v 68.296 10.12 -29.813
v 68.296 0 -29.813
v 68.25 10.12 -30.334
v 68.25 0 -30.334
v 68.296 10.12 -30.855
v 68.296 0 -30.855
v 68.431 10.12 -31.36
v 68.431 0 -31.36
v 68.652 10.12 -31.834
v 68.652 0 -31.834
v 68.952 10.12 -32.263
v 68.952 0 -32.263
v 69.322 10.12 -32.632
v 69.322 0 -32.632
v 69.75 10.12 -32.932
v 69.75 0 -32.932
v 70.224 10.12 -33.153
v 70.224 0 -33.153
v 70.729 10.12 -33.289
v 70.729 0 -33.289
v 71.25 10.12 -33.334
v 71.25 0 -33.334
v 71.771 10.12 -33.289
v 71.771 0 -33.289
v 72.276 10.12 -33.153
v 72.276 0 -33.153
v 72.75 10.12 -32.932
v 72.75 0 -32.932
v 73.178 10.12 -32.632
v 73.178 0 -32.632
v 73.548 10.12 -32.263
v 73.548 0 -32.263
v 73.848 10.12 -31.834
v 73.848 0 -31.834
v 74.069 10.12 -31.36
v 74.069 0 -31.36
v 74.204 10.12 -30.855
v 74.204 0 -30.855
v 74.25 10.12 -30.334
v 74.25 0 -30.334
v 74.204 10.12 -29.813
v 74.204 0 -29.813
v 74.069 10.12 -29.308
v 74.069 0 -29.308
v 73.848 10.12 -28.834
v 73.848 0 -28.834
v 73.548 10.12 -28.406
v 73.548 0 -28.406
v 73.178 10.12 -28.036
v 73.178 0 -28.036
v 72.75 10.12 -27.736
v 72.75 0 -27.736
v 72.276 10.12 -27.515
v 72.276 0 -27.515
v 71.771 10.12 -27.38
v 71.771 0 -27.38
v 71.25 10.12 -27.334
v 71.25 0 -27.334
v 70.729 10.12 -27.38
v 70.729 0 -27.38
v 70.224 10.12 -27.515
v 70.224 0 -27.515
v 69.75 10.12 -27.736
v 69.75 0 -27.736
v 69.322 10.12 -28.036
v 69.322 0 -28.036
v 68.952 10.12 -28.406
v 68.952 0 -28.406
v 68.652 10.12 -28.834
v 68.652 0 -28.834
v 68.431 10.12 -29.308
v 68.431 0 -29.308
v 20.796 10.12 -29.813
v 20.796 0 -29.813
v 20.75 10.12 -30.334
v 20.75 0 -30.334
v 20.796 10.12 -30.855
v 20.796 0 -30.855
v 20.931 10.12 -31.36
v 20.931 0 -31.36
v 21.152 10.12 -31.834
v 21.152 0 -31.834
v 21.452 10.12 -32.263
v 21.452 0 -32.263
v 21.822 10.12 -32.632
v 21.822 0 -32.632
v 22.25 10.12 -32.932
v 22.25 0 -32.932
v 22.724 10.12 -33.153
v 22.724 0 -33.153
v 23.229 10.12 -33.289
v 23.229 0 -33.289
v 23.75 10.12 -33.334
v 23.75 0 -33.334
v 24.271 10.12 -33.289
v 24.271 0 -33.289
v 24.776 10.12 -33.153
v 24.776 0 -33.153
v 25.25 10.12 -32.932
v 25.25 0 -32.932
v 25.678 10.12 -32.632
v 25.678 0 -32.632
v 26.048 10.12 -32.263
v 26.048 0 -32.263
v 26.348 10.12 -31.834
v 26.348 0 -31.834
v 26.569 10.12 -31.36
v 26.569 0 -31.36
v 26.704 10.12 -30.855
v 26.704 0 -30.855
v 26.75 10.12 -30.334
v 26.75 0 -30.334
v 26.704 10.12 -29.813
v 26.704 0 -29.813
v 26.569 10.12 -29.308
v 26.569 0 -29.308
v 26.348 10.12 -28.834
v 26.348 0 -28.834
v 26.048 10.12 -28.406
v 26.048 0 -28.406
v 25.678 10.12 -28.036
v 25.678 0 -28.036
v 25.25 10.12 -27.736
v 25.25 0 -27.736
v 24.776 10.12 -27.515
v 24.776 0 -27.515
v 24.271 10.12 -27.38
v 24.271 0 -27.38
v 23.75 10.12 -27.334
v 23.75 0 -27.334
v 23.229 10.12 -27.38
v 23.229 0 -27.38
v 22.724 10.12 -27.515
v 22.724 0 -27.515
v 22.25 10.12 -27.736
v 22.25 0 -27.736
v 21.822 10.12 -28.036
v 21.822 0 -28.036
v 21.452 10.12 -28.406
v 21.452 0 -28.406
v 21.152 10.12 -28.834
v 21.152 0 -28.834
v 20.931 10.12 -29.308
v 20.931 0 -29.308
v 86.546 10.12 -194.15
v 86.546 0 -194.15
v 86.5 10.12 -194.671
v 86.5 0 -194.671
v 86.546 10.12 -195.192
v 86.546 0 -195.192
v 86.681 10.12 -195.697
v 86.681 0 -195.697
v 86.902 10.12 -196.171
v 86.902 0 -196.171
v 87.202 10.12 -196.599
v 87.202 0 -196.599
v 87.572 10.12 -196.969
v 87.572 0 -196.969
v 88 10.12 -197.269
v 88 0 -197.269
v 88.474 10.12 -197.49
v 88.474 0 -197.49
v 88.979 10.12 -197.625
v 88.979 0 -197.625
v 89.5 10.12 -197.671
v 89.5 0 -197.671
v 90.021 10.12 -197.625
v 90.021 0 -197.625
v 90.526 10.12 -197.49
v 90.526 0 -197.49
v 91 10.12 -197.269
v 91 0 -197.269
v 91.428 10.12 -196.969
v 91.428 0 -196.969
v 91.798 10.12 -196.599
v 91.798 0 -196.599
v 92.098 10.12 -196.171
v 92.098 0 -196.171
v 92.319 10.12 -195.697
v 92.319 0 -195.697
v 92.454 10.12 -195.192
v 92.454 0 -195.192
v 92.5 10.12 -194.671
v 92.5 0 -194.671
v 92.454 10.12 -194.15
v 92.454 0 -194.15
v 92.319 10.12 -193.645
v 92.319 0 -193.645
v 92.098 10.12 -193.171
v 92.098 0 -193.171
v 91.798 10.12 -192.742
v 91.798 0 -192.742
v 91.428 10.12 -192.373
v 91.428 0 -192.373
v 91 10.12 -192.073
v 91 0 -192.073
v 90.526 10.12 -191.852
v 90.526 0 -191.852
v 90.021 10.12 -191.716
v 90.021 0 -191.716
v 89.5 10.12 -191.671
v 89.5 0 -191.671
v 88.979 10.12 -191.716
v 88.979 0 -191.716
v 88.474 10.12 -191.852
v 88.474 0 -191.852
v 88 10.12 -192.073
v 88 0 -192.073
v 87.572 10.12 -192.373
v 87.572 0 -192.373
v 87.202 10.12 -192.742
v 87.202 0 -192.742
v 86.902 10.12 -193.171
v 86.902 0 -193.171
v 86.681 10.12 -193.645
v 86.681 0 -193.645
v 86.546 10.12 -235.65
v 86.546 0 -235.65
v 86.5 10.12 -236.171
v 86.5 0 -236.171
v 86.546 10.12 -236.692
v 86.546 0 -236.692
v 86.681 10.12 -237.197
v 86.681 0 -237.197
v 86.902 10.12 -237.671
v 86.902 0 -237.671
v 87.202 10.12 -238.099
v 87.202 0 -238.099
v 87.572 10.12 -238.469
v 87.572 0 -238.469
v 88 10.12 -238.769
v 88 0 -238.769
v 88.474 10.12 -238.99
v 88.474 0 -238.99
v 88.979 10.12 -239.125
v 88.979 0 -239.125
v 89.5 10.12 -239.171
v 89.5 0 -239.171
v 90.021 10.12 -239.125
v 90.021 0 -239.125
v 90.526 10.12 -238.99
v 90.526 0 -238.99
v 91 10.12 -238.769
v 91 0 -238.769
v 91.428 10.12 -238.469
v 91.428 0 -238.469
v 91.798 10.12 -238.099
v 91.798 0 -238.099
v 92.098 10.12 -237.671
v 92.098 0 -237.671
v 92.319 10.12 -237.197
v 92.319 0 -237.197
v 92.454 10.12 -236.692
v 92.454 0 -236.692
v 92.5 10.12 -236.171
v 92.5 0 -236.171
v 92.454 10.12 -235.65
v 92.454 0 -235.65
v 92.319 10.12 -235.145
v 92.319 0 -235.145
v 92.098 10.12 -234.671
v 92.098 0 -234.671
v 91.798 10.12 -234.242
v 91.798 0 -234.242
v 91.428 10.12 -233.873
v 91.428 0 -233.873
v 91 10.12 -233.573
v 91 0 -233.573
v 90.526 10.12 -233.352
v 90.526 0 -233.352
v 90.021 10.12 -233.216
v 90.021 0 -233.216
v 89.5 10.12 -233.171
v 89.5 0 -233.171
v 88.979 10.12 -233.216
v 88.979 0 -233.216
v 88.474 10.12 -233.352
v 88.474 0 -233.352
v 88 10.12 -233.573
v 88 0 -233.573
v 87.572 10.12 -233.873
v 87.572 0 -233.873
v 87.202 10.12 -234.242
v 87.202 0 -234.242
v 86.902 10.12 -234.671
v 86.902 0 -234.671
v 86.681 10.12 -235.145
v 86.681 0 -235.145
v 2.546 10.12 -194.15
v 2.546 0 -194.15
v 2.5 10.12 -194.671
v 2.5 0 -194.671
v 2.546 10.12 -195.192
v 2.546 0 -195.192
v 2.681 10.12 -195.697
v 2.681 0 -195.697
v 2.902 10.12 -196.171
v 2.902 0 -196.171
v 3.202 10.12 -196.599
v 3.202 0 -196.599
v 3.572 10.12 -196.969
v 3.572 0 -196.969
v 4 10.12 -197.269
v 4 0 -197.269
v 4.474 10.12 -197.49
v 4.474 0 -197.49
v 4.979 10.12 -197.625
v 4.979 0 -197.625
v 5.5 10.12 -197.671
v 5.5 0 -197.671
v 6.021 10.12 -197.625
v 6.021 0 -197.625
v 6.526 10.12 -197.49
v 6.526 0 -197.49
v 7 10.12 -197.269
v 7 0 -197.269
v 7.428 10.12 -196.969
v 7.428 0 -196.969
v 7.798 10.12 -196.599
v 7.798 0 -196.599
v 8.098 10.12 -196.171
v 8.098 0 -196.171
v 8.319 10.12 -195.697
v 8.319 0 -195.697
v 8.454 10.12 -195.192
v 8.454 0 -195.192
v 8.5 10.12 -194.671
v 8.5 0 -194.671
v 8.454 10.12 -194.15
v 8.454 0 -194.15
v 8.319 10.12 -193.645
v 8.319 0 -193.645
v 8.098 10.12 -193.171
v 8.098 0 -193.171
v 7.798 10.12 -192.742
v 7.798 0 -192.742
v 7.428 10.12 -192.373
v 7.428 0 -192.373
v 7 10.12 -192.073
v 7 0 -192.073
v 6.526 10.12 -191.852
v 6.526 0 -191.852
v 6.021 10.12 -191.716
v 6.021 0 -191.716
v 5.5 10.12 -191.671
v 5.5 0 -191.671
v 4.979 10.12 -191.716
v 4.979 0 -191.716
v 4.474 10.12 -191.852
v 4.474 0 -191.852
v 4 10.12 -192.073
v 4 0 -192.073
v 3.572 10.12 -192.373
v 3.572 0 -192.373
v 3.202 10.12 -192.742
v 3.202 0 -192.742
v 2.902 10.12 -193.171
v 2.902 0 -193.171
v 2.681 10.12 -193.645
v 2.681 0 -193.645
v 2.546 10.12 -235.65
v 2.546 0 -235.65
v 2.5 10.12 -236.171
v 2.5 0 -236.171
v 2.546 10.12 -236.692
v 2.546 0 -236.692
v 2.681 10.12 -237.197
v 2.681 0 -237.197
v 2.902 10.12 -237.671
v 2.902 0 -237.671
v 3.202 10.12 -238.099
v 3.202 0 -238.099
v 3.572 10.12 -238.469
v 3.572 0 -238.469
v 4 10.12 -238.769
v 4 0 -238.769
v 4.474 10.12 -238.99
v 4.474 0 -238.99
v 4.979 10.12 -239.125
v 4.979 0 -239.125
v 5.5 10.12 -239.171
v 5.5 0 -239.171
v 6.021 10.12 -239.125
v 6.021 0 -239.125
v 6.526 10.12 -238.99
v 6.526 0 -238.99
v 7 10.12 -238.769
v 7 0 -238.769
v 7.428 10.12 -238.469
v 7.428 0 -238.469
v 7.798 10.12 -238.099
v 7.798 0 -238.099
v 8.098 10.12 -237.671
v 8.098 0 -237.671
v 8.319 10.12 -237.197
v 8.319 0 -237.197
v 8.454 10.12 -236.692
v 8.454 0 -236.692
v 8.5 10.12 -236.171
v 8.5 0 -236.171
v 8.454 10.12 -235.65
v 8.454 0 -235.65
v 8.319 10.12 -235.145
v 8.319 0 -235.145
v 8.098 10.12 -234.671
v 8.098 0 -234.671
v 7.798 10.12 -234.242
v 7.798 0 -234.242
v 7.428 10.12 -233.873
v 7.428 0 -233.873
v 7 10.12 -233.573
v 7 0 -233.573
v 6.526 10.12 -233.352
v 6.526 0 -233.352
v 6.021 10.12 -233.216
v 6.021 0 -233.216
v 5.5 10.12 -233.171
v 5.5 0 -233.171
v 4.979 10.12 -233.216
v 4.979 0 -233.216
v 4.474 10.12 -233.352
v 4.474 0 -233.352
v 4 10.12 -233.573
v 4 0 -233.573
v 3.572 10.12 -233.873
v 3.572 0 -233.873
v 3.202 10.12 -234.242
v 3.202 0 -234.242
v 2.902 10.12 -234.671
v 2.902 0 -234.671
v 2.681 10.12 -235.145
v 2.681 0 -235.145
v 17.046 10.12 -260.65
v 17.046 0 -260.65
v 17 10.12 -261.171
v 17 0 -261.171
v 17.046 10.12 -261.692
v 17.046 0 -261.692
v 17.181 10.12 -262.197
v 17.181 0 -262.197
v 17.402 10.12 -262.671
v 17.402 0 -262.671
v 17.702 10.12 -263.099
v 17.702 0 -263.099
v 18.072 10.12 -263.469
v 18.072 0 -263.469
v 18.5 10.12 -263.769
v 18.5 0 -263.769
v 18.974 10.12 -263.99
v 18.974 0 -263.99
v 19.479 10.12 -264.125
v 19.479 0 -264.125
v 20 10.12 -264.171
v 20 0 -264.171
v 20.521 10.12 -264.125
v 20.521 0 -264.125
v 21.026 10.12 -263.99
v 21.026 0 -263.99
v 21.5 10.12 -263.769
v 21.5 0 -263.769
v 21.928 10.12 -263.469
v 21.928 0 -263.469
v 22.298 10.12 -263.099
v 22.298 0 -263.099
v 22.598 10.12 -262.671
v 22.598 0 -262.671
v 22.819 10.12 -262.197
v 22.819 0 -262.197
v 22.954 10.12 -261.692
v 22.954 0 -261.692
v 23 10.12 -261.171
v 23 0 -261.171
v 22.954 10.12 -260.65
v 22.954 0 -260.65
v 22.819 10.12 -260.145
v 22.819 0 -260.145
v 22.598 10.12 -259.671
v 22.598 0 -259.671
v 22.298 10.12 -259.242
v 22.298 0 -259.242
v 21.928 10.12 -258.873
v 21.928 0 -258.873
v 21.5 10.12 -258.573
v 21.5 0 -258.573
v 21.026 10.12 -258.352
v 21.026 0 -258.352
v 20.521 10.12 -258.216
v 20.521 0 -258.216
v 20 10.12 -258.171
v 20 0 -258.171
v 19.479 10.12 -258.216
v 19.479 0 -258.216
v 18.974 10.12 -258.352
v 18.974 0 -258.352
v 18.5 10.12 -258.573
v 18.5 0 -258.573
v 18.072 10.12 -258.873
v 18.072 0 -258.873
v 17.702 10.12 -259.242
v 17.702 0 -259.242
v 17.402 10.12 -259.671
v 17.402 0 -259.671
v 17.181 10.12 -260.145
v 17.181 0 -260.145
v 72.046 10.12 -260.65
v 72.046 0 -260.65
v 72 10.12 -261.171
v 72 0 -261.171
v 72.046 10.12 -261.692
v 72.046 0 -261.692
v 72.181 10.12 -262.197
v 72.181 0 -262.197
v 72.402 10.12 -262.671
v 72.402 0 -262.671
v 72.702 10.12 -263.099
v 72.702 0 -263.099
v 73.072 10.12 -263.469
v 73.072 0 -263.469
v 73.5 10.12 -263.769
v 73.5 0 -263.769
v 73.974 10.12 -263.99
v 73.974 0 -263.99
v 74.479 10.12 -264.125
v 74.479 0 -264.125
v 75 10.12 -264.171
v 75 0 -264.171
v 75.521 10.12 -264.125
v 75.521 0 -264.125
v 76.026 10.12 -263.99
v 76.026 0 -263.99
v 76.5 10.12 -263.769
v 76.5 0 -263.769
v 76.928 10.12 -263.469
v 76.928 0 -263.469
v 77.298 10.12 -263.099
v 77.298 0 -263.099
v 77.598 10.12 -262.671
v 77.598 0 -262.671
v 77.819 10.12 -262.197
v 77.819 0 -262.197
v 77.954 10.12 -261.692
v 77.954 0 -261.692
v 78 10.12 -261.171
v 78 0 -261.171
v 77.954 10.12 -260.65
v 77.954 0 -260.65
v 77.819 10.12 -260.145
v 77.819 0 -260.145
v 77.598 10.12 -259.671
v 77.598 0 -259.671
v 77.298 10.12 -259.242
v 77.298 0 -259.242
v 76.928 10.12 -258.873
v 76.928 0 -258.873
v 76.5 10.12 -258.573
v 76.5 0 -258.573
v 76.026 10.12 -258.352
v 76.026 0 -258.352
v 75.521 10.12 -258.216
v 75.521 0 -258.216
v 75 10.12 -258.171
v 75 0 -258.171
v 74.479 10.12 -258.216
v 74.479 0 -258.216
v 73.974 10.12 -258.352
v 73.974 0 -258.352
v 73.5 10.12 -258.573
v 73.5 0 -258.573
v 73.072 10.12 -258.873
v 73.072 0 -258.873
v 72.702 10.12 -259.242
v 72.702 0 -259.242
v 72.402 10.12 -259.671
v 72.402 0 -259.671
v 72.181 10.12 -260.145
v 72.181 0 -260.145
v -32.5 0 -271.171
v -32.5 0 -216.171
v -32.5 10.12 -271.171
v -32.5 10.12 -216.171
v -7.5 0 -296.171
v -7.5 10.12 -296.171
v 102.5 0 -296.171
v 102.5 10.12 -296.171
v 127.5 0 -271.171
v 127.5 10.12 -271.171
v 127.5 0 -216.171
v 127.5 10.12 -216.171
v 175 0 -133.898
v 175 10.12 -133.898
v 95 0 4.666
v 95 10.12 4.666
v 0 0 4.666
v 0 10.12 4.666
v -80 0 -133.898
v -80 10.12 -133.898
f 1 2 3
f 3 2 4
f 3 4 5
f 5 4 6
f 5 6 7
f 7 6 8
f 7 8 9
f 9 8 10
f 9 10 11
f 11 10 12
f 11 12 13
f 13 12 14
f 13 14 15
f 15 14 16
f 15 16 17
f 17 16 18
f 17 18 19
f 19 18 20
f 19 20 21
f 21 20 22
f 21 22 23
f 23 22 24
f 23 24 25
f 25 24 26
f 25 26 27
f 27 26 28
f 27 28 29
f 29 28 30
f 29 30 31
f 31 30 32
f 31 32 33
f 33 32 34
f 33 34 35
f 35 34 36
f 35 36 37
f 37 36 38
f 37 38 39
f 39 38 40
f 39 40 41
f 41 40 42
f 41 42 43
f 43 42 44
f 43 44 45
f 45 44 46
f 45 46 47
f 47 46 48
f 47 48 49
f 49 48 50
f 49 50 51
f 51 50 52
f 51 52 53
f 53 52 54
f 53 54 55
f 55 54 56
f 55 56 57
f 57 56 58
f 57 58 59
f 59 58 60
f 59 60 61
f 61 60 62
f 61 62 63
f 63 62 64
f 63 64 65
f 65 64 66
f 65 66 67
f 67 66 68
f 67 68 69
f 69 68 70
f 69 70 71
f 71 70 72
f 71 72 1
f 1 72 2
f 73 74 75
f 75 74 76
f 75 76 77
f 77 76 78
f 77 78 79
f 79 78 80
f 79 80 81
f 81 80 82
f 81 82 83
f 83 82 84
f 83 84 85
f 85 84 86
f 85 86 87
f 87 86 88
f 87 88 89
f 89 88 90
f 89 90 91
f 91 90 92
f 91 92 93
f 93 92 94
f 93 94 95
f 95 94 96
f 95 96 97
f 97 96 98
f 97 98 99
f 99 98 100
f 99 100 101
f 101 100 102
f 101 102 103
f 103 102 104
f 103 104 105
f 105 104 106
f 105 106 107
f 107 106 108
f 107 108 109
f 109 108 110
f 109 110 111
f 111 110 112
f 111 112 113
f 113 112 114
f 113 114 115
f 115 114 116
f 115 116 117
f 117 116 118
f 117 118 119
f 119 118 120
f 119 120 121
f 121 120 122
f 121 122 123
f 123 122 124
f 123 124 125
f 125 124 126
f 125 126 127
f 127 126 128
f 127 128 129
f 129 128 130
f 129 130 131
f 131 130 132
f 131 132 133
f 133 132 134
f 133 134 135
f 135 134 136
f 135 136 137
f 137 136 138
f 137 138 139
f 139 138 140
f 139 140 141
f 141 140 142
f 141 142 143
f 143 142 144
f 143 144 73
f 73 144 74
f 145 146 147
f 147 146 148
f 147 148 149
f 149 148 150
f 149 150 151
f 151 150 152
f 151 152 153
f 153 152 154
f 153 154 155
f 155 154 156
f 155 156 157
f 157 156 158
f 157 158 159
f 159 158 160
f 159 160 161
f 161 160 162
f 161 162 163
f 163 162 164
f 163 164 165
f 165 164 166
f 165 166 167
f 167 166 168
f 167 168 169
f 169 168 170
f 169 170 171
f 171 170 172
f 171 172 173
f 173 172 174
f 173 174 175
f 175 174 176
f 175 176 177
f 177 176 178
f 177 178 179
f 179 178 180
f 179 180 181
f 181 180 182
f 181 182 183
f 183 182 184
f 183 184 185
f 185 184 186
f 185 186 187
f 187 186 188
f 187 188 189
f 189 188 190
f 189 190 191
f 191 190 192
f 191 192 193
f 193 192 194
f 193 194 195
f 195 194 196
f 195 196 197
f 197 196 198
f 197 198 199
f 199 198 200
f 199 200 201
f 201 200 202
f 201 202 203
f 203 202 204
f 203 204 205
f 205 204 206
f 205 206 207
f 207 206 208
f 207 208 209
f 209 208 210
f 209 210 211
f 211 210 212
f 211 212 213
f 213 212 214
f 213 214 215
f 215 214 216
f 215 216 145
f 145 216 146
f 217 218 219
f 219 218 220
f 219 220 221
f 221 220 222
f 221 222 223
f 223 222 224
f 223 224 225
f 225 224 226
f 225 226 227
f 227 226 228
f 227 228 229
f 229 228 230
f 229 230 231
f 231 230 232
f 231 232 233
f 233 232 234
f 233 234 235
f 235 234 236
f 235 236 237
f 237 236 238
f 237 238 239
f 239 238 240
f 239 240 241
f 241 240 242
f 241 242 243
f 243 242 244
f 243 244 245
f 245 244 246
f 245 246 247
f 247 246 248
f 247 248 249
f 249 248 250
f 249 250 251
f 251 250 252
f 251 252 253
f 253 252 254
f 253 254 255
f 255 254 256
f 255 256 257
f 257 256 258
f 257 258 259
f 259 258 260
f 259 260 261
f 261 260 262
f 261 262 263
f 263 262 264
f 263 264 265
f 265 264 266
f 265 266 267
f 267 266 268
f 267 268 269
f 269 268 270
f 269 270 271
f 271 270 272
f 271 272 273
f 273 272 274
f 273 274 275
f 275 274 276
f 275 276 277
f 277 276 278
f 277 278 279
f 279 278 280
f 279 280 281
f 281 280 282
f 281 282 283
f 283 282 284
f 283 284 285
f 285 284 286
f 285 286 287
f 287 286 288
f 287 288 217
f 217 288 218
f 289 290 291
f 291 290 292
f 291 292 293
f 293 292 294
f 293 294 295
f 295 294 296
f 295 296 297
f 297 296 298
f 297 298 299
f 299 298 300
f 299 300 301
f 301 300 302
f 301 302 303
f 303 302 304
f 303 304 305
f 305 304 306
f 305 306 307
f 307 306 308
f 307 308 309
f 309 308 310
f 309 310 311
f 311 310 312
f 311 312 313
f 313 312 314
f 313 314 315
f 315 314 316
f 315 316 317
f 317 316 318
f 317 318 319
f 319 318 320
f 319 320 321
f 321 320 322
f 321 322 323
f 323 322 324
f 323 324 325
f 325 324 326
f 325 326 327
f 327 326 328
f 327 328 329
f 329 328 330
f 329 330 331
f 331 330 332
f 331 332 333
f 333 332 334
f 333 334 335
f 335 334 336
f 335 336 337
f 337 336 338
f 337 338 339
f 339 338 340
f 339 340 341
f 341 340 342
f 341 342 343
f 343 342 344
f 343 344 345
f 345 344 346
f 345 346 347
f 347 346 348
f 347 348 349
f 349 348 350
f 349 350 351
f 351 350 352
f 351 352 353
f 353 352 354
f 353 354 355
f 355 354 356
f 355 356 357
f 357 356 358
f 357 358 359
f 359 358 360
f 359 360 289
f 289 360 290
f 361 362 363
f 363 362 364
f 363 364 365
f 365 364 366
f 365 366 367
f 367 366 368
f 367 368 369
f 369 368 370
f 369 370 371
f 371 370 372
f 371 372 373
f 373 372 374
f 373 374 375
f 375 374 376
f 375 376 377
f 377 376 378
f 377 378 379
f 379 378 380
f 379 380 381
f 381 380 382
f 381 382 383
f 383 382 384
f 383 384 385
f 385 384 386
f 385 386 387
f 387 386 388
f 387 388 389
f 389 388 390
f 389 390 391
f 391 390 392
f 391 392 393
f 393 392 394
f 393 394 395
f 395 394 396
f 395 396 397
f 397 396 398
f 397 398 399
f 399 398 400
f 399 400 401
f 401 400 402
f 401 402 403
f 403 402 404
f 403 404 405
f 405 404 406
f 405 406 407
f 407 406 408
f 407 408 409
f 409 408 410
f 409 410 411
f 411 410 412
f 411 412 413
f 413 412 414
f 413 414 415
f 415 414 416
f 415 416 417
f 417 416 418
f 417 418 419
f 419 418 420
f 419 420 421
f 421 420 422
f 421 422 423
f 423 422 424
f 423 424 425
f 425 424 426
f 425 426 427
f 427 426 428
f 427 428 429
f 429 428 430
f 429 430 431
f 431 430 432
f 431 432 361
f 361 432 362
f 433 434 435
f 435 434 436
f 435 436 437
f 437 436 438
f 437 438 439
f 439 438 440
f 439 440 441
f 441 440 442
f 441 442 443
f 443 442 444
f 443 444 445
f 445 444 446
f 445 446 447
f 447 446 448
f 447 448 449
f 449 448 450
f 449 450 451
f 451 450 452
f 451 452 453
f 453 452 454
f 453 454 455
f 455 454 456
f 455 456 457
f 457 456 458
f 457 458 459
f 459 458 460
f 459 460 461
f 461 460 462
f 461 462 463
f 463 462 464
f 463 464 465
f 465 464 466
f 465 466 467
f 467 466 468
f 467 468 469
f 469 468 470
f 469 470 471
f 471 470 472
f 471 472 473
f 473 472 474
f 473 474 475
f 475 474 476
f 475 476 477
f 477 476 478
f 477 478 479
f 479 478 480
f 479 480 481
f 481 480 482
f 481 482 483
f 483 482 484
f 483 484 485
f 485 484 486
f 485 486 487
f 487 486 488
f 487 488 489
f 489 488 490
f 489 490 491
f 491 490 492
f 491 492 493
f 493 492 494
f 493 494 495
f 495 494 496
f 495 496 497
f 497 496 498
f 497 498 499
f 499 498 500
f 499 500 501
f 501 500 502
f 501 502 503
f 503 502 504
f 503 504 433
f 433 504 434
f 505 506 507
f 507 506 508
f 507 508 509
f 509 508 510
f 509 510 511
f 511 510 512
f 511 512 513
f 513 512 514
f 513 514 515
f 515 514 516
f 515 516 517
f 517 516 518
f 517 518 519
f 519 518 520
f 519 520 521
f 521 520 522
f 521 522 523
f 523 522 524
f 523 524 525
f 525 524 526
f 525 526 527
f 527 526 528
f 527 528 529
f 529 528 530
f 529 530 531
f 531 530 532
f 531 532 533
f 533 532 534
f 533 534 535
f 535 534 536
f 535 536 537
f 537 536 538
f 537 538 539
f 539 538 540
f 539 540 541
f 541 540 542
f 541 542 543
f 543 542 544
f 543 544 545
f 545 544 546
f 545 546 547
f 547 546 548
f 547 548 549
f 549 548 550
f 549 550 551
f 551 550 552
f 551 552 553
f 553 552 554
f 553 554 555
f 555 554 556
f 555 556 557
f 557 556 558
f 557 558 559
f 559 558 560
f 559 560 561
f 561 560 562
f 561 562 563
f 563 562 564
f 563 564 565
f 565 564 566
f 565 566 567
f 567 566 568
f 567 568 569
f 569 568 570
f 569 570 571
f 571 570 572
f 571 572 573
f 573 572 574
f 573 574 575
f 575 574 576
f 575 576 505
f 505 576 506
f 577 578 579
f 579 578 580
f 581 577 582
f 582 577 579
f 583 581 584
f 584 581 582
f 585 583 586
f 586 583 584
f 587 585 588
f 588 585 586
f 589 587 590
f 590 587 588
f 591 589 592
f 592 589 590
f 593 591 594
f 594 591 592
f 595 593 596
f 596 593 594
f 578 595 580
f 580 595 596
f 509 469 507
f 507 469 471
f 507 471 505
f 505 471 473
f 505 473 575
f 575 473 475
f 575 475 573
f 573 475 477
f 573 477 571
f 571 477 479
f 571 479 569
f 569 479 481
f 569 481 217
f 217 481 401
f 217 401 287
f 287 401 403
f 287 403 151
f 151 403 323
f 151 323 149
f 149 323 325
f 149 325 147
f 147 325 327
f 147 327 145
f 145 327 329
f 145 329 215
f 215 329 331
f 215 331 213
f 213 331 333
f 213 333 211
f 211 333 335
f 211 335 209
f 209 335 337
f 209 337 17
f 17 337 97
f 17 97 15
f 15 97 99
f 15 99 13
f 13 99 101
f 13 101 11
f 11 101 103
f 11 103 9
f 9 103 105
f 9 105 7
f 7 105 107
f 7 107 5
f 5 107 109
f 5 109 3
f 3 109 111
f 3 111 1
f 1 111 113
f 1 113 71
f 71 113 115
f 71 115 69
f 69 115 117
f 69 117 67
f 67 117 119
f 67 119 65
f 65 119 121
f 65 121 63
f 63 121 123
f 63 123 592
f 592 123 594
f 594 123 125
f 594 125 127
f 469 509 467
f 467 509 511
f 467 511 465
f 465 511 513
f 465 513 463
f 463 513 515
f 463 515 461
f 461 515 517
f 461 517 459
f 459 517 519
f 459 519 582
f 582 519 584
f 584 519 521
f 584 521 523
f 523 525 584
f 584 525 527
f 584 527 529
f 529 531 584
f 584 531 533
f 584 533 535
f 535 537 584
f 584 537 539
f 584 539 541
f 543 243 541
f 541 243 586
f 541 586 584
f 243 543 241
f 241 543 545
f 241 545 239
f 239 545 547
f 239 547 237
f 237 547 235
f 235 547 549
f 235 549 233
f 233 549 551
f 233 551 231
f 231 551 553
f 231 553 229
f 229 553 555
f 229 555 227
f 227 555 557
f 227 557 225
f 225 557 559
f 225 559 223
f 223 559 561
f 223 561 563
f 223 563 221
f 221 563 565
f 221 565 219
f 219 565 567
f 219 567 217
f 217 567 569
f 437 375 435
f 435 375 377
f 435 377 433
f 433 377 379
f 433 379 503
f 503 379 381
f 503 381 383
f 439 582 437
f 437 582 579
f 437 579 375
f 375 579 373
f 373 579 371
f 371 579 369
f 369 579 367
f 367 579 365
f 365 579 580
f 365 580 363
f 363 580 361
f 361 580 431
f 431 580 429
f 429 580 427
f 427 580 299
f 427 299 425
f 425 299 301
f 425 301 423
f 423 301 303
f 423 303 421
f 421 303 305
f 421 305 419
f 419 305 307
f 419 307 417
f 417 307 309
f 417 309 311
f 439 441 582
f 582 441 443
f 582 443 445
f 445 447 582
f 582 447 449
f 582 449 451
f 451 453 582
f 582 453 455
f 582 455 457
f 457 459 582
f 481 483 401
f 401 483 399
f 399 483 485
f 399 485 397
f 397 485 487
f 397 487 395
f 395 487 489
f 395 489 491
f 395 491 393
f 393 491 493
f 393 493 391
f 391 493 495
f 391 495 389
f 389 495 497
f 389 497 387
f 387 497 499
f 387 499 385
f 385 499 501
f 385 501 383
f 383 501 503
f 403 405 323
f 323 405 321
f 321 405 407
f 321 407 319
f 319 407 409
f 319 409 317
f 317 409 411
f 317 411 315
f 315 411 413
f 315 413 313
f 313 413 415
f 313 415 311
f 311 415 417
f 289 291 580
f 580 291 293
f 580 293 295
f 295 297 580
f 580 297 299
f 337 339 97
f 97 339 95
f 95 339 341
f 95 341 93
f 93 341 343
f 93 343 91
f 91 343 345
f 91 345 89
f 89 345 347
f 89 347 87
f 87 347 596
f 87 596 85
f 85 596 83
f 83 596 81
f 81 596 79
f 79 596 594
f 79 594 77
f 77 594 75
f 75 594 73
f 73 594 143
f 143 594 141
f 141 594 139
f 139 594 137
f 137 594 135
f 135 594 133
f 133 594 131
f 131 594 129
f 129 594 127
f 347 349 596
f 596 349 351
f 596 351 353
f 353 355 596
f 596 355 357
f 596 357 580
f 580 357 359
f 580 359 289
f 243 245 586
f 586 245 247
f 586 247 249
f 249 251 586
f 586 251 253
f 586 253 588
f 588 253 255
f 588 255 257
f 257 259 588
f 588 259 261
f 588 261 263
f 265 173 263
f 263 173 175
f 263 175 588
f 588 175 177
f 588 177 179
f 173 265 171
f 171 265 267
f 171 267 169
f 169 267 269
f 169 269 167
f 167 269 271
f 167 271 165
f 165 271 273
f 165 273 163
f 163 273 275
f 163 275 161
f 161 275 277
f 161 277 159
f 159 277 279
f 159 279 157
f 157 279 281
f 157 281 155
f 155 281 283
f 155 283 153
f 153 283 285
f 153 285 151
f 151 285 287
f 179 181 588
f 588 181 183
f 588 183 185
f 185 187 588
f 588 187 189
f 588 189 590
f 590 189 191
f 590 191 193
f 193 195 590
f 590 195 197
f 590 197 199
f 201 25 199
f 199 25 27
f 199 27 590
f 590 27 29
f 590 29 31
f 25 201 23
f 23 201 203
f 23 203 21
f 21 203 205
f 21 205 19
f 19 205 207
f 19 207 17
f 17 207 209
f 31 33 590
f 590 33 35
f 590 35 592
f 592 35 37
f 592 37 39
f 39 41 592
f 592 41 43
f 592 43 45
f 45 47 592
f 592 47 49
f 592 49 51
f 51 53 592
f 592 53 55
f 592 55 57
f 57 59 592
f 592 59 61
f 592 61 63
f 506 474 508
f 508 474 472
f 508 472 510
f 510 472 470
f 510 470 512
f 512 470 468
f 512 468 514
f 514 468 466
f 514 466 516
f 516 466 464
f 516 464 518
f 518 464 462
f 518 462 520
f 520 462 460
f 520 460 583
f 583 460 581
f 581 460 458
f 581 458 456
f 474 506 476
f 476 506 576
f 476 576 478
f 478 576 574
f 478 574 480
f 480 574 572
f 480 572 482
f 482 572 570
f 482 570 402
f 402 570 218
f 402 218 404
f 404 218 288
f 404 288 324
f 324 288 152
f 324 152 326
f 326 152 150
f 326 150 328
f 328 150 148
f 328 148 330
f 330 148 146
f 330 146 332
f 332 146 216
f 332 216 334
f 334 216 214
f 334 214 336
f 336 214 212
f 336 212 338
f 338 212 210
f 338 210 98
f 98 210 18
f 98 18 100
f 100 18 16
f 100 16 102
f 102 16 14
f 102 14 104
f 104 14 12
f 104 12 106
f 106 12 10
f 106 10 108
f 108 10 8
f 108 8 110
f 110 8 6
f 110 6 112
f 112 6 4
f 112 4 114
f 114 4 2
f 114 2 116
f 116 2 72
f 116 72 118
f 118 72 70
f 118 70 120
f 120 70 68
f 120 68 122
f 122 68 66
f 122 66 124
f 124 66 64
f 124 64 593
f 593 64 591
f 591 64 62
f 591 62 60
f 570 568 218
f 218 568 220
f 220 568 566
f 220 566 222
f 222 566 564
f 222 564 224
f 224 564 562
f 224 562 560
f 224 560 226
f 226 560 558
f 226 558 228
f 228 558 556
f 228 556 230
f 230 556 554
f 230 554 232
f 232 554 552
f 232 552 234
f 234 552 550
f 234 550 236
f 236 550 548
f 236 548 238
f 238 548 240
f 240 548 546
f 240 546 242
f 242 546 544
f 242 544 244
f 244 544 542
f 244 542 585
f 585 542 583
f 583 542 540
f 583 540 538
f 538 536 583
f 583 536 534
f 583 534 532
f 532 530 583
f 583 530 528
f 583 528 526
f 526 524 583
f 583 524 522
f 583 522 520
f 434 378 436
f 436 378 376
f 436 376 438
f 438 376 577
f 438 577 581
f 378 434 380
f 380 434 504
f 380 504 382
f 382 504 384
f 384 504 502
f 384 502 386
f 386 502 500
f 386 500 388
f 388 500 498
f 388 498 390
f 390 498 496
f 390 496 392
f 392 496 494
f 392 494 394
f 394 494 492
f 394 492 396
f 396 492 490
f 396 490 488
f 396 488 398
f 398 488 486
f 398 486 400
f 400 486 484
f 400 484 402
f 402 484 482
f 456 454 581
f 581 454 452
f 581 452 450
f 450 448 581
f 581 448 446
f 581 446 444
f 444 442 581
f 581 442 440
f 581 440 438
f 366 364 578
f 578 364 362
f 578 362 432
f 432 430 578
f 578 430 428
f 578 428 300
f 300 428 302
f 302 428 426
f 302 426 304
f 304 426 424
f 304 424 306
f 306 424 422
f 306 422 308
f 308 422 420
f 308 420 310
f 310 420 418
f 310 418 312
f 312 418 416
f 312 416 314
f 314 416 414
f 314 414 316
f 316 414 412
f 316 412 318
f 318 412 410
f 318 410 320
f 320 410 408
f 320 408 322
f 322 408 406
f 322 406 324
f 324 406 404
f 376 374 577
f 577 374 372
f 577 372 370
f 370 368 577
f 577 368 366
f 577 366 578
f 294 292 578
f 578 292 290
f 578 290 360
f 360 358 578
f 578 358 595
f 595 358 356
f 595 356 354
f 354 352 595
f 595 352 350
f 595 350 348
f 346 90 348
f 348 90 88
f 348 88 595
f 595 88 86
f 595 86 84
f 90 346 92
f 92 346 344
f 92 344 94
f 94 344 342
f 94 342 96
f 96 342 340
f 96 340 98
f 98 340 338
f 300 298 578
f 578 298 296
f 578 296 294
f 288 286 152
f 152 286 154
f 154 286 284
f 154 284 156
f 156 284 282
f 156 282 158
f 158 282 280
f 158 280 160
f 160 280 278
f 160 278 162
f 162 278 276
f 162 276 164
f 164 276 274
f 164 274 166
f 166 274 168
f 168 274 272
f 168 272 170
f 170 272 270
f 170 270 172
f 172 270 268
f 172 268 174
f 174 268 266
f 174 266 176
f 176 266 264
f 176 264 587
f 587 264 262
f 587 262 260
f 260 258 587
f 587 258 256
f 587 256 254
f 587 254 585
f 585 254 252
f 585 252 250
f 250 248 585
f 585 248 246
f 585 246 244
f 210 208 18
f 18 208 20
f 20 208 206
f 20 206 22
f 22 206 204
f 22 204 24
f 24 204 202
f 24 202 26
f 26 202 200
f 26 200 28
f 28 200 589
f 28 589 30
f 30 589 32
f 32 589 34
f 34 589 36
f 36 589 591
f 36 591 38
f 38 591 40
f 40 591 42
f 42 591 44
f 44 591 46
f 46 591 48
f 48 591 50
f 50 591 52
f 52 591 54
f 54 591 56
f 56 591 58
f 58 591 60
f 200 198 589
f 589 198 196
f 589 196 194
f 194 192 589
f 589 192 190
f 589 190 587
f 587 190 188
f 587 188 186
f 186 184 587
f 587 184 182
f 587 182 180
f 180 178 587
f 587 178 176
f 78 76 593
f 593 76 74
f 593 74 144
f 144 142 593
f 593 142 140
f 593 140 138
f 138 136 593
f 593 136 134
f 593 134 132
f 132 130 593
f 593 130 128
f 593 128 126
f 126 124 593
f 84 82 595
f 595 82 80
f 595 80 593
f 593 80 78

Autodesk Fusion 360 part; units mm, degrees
sketch "Esquisse3" plane through (0, 0, 0) normal (0, 1, 0) x (1, 0, 0)
  line L0 (-32.5, 271.1708) -> (-7.5, 296.1708)
  line L1 (-32.5, 261.1708) -> (127.5, 261.1708) construction
  line L2 (127.5, 216.1708) -> (-32.5, 216.1708) construction
  circle A0 centre (20, 261.1708) radius 3
  line L3 (-7.5, 296.1708) -> (102.5, 296.1708)
  circle A1 centre (89.5, 194.6708) radius 3
  line L4 (-32.5, 236.1708) -> (127.5, 236.1708) construction
  line L5 (0, -4.6657) -> (95, -4.6657)
  circle A2 centre (89.5, 236.1708) radius 3
  line L6 (47.5, 23.552) -> (47.5, 296.1708)
  circle A3 centre (5.5, 194.6708) radius 3
  line L7 (47.5, 30.3343) -> (47.5, -4.6657) construction
  line L8 (-44.913, 194.6708) -> (139.913, 194.6708) construction
  line L9 (-80, 133.8984) -> (0, -4.6657)
  line L10 (95, -4.6657) -> (175, 133.8984)
  line L11 (23.75, 67.2637) -> (23.75, -4.6657) construction
  line L12 (71.25, 67.8004) -> (71.25, 0) construction
  line L13 (-32.5, 216.1708) -> (-80, 133.8984)
  line L14 (127.5, 271.1708) -> (127.5, 216.1708)
  line L15 (102.5, 296.1708) -> (127.5, 271.1708)
  line L16 (-32.5, 216.1708) -> (-32.5, 271.1708)
  line L17 (-32.5, 271.1708) -> (127.5, 271.1708) construction
  line L18 (-20.2073, 30.3343) -> (115.2073, 30.3343) construction
  line L19 (175, 133.8984) -> (127.5, 216.1708)
  circle A4 centre (75, 261.1708) radius 3
  circle A5 centre (5.5, 236.1708) radius 3
  circle A6 centre (23.75, 30.3343) radius 3
  circle A7 centre (71.25, 30.3343) radius 3
  line L20 (5.5, 300.8365) -> (5.5, 171.5052) construction
  line L21 (89.5, 296.1708) -> (89.5, 171.5052) construction
  line L22 (20, 296.1708) -> (20, 171.5052) construction
  line L23 (75, 296.1708) -> (75, 171.5052) construction
  point P0 (0, -4.6657)
  dimension "d12" = 95
  dimension "d60" = 120
  dimension "d18" = 120
  dimension "d63" = 160
  dimension "d65" = 25
  dimension "d66" = 25
  dimension "d35" = 35
  dimension "d70" = 6
  dimension "d71" = 6
  dimension "d72" = 6
  dimension "d56" = 6
  dimension "d74" = 6
  dimension "d75" = 6
  dimension "d79" = 101.5
  dimension "d80" = 23.75
  dimension "d67" = 23.75
  dimension "d88" = 80
  dimension "d89" = 60
  dimension "d90" = 25
  dimension "d95" = 95
  dimension "d96" = 160
  dimension "d97" = 35
  dimension "d98" = 6
  dimension "d99" = 6
  dimension "d100" = 38
  dimension "d101" = 38
  dimension "d102" = 52.5
  dimension "d103" = 52.5
extrude "Extrusion5" add sketch "Esquisse3" along normal blind 10.12
equation "plaque0_l1_Ref = 160 mm"
equation "plaque0_l2_Ref = 95 mm"
equation "plaque_ep = 10.12 mm"
equation "support_prof = 80 mm"
equation "support_chanf = 25 mm"
equation "trou_butée_x = 38 mm"
equation "trou_butée_y = 60 mm"
equation "trou_diam = 6.05 mm"
equation "trou_butée_entraxe = 41.5 mm"
equation "trou_glissière_y = 35.025 mm"
equation "trou_glissière_entraxe = 55 mm"
equation "trou_glissière_x = 27.525 mm"
equation "d104 = plaque_ep"
